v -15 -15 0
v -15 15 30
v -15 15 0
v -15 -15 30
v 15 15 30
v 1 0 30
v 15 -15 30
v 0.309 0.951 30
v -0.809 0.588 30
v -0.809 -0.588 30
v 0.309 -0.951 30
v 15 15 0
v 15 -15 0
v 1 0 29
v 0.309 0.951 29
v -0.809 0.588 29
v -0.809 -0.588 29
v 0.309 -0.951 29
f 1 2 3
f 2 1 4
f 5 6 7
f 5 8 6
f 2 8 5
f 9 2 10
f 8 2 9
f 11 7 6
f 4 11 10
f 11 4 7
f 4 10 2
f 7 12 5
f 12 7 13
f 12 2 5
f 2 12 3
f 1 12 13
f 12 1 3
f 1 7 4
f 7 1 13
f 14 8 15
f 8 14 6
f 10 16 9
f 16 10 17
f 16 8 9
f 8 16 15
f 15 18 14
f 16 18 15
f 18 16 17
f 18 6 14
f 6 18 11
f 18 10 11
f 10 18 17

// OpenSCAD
cube_size = 30; // [10:Small,20:Medium,30:Large]

hole_diameter = 2; 
hole_radius = hole_diameter/2;

// How deep should the center hole be?
hole_depth = 1; // [0,1,5,50]

show_wheels = "no"; // [yes,no]

// How thick should the side wheels be?
wheel_thickness = 40; // [1:40]

// ignore this variable!
// foo=1;

// don't turn functions into params!
function BEZ03(u) = pow((1-u), 3);

// ignore variable values
bing = 3+4;
baz = 3 / hole_depth;

difference() {
  union() {
    translate([0, 0, cube_size/2]) cube([cube_size,cube_size,cube_size], center=true);
    if (show_wheels == "yes") {
      translate([0, 0, cube_size/2]) rotate([0, 90, 0]) {
        cylinder(r=cube_size/2, h=cube_size+(wheel_thickness*2), center=true);
      }
    }
  }
  translate([0, 0, cube_size-hole_depth]) cylinder(r=hole_radius, h=hole_depth);
}
        
